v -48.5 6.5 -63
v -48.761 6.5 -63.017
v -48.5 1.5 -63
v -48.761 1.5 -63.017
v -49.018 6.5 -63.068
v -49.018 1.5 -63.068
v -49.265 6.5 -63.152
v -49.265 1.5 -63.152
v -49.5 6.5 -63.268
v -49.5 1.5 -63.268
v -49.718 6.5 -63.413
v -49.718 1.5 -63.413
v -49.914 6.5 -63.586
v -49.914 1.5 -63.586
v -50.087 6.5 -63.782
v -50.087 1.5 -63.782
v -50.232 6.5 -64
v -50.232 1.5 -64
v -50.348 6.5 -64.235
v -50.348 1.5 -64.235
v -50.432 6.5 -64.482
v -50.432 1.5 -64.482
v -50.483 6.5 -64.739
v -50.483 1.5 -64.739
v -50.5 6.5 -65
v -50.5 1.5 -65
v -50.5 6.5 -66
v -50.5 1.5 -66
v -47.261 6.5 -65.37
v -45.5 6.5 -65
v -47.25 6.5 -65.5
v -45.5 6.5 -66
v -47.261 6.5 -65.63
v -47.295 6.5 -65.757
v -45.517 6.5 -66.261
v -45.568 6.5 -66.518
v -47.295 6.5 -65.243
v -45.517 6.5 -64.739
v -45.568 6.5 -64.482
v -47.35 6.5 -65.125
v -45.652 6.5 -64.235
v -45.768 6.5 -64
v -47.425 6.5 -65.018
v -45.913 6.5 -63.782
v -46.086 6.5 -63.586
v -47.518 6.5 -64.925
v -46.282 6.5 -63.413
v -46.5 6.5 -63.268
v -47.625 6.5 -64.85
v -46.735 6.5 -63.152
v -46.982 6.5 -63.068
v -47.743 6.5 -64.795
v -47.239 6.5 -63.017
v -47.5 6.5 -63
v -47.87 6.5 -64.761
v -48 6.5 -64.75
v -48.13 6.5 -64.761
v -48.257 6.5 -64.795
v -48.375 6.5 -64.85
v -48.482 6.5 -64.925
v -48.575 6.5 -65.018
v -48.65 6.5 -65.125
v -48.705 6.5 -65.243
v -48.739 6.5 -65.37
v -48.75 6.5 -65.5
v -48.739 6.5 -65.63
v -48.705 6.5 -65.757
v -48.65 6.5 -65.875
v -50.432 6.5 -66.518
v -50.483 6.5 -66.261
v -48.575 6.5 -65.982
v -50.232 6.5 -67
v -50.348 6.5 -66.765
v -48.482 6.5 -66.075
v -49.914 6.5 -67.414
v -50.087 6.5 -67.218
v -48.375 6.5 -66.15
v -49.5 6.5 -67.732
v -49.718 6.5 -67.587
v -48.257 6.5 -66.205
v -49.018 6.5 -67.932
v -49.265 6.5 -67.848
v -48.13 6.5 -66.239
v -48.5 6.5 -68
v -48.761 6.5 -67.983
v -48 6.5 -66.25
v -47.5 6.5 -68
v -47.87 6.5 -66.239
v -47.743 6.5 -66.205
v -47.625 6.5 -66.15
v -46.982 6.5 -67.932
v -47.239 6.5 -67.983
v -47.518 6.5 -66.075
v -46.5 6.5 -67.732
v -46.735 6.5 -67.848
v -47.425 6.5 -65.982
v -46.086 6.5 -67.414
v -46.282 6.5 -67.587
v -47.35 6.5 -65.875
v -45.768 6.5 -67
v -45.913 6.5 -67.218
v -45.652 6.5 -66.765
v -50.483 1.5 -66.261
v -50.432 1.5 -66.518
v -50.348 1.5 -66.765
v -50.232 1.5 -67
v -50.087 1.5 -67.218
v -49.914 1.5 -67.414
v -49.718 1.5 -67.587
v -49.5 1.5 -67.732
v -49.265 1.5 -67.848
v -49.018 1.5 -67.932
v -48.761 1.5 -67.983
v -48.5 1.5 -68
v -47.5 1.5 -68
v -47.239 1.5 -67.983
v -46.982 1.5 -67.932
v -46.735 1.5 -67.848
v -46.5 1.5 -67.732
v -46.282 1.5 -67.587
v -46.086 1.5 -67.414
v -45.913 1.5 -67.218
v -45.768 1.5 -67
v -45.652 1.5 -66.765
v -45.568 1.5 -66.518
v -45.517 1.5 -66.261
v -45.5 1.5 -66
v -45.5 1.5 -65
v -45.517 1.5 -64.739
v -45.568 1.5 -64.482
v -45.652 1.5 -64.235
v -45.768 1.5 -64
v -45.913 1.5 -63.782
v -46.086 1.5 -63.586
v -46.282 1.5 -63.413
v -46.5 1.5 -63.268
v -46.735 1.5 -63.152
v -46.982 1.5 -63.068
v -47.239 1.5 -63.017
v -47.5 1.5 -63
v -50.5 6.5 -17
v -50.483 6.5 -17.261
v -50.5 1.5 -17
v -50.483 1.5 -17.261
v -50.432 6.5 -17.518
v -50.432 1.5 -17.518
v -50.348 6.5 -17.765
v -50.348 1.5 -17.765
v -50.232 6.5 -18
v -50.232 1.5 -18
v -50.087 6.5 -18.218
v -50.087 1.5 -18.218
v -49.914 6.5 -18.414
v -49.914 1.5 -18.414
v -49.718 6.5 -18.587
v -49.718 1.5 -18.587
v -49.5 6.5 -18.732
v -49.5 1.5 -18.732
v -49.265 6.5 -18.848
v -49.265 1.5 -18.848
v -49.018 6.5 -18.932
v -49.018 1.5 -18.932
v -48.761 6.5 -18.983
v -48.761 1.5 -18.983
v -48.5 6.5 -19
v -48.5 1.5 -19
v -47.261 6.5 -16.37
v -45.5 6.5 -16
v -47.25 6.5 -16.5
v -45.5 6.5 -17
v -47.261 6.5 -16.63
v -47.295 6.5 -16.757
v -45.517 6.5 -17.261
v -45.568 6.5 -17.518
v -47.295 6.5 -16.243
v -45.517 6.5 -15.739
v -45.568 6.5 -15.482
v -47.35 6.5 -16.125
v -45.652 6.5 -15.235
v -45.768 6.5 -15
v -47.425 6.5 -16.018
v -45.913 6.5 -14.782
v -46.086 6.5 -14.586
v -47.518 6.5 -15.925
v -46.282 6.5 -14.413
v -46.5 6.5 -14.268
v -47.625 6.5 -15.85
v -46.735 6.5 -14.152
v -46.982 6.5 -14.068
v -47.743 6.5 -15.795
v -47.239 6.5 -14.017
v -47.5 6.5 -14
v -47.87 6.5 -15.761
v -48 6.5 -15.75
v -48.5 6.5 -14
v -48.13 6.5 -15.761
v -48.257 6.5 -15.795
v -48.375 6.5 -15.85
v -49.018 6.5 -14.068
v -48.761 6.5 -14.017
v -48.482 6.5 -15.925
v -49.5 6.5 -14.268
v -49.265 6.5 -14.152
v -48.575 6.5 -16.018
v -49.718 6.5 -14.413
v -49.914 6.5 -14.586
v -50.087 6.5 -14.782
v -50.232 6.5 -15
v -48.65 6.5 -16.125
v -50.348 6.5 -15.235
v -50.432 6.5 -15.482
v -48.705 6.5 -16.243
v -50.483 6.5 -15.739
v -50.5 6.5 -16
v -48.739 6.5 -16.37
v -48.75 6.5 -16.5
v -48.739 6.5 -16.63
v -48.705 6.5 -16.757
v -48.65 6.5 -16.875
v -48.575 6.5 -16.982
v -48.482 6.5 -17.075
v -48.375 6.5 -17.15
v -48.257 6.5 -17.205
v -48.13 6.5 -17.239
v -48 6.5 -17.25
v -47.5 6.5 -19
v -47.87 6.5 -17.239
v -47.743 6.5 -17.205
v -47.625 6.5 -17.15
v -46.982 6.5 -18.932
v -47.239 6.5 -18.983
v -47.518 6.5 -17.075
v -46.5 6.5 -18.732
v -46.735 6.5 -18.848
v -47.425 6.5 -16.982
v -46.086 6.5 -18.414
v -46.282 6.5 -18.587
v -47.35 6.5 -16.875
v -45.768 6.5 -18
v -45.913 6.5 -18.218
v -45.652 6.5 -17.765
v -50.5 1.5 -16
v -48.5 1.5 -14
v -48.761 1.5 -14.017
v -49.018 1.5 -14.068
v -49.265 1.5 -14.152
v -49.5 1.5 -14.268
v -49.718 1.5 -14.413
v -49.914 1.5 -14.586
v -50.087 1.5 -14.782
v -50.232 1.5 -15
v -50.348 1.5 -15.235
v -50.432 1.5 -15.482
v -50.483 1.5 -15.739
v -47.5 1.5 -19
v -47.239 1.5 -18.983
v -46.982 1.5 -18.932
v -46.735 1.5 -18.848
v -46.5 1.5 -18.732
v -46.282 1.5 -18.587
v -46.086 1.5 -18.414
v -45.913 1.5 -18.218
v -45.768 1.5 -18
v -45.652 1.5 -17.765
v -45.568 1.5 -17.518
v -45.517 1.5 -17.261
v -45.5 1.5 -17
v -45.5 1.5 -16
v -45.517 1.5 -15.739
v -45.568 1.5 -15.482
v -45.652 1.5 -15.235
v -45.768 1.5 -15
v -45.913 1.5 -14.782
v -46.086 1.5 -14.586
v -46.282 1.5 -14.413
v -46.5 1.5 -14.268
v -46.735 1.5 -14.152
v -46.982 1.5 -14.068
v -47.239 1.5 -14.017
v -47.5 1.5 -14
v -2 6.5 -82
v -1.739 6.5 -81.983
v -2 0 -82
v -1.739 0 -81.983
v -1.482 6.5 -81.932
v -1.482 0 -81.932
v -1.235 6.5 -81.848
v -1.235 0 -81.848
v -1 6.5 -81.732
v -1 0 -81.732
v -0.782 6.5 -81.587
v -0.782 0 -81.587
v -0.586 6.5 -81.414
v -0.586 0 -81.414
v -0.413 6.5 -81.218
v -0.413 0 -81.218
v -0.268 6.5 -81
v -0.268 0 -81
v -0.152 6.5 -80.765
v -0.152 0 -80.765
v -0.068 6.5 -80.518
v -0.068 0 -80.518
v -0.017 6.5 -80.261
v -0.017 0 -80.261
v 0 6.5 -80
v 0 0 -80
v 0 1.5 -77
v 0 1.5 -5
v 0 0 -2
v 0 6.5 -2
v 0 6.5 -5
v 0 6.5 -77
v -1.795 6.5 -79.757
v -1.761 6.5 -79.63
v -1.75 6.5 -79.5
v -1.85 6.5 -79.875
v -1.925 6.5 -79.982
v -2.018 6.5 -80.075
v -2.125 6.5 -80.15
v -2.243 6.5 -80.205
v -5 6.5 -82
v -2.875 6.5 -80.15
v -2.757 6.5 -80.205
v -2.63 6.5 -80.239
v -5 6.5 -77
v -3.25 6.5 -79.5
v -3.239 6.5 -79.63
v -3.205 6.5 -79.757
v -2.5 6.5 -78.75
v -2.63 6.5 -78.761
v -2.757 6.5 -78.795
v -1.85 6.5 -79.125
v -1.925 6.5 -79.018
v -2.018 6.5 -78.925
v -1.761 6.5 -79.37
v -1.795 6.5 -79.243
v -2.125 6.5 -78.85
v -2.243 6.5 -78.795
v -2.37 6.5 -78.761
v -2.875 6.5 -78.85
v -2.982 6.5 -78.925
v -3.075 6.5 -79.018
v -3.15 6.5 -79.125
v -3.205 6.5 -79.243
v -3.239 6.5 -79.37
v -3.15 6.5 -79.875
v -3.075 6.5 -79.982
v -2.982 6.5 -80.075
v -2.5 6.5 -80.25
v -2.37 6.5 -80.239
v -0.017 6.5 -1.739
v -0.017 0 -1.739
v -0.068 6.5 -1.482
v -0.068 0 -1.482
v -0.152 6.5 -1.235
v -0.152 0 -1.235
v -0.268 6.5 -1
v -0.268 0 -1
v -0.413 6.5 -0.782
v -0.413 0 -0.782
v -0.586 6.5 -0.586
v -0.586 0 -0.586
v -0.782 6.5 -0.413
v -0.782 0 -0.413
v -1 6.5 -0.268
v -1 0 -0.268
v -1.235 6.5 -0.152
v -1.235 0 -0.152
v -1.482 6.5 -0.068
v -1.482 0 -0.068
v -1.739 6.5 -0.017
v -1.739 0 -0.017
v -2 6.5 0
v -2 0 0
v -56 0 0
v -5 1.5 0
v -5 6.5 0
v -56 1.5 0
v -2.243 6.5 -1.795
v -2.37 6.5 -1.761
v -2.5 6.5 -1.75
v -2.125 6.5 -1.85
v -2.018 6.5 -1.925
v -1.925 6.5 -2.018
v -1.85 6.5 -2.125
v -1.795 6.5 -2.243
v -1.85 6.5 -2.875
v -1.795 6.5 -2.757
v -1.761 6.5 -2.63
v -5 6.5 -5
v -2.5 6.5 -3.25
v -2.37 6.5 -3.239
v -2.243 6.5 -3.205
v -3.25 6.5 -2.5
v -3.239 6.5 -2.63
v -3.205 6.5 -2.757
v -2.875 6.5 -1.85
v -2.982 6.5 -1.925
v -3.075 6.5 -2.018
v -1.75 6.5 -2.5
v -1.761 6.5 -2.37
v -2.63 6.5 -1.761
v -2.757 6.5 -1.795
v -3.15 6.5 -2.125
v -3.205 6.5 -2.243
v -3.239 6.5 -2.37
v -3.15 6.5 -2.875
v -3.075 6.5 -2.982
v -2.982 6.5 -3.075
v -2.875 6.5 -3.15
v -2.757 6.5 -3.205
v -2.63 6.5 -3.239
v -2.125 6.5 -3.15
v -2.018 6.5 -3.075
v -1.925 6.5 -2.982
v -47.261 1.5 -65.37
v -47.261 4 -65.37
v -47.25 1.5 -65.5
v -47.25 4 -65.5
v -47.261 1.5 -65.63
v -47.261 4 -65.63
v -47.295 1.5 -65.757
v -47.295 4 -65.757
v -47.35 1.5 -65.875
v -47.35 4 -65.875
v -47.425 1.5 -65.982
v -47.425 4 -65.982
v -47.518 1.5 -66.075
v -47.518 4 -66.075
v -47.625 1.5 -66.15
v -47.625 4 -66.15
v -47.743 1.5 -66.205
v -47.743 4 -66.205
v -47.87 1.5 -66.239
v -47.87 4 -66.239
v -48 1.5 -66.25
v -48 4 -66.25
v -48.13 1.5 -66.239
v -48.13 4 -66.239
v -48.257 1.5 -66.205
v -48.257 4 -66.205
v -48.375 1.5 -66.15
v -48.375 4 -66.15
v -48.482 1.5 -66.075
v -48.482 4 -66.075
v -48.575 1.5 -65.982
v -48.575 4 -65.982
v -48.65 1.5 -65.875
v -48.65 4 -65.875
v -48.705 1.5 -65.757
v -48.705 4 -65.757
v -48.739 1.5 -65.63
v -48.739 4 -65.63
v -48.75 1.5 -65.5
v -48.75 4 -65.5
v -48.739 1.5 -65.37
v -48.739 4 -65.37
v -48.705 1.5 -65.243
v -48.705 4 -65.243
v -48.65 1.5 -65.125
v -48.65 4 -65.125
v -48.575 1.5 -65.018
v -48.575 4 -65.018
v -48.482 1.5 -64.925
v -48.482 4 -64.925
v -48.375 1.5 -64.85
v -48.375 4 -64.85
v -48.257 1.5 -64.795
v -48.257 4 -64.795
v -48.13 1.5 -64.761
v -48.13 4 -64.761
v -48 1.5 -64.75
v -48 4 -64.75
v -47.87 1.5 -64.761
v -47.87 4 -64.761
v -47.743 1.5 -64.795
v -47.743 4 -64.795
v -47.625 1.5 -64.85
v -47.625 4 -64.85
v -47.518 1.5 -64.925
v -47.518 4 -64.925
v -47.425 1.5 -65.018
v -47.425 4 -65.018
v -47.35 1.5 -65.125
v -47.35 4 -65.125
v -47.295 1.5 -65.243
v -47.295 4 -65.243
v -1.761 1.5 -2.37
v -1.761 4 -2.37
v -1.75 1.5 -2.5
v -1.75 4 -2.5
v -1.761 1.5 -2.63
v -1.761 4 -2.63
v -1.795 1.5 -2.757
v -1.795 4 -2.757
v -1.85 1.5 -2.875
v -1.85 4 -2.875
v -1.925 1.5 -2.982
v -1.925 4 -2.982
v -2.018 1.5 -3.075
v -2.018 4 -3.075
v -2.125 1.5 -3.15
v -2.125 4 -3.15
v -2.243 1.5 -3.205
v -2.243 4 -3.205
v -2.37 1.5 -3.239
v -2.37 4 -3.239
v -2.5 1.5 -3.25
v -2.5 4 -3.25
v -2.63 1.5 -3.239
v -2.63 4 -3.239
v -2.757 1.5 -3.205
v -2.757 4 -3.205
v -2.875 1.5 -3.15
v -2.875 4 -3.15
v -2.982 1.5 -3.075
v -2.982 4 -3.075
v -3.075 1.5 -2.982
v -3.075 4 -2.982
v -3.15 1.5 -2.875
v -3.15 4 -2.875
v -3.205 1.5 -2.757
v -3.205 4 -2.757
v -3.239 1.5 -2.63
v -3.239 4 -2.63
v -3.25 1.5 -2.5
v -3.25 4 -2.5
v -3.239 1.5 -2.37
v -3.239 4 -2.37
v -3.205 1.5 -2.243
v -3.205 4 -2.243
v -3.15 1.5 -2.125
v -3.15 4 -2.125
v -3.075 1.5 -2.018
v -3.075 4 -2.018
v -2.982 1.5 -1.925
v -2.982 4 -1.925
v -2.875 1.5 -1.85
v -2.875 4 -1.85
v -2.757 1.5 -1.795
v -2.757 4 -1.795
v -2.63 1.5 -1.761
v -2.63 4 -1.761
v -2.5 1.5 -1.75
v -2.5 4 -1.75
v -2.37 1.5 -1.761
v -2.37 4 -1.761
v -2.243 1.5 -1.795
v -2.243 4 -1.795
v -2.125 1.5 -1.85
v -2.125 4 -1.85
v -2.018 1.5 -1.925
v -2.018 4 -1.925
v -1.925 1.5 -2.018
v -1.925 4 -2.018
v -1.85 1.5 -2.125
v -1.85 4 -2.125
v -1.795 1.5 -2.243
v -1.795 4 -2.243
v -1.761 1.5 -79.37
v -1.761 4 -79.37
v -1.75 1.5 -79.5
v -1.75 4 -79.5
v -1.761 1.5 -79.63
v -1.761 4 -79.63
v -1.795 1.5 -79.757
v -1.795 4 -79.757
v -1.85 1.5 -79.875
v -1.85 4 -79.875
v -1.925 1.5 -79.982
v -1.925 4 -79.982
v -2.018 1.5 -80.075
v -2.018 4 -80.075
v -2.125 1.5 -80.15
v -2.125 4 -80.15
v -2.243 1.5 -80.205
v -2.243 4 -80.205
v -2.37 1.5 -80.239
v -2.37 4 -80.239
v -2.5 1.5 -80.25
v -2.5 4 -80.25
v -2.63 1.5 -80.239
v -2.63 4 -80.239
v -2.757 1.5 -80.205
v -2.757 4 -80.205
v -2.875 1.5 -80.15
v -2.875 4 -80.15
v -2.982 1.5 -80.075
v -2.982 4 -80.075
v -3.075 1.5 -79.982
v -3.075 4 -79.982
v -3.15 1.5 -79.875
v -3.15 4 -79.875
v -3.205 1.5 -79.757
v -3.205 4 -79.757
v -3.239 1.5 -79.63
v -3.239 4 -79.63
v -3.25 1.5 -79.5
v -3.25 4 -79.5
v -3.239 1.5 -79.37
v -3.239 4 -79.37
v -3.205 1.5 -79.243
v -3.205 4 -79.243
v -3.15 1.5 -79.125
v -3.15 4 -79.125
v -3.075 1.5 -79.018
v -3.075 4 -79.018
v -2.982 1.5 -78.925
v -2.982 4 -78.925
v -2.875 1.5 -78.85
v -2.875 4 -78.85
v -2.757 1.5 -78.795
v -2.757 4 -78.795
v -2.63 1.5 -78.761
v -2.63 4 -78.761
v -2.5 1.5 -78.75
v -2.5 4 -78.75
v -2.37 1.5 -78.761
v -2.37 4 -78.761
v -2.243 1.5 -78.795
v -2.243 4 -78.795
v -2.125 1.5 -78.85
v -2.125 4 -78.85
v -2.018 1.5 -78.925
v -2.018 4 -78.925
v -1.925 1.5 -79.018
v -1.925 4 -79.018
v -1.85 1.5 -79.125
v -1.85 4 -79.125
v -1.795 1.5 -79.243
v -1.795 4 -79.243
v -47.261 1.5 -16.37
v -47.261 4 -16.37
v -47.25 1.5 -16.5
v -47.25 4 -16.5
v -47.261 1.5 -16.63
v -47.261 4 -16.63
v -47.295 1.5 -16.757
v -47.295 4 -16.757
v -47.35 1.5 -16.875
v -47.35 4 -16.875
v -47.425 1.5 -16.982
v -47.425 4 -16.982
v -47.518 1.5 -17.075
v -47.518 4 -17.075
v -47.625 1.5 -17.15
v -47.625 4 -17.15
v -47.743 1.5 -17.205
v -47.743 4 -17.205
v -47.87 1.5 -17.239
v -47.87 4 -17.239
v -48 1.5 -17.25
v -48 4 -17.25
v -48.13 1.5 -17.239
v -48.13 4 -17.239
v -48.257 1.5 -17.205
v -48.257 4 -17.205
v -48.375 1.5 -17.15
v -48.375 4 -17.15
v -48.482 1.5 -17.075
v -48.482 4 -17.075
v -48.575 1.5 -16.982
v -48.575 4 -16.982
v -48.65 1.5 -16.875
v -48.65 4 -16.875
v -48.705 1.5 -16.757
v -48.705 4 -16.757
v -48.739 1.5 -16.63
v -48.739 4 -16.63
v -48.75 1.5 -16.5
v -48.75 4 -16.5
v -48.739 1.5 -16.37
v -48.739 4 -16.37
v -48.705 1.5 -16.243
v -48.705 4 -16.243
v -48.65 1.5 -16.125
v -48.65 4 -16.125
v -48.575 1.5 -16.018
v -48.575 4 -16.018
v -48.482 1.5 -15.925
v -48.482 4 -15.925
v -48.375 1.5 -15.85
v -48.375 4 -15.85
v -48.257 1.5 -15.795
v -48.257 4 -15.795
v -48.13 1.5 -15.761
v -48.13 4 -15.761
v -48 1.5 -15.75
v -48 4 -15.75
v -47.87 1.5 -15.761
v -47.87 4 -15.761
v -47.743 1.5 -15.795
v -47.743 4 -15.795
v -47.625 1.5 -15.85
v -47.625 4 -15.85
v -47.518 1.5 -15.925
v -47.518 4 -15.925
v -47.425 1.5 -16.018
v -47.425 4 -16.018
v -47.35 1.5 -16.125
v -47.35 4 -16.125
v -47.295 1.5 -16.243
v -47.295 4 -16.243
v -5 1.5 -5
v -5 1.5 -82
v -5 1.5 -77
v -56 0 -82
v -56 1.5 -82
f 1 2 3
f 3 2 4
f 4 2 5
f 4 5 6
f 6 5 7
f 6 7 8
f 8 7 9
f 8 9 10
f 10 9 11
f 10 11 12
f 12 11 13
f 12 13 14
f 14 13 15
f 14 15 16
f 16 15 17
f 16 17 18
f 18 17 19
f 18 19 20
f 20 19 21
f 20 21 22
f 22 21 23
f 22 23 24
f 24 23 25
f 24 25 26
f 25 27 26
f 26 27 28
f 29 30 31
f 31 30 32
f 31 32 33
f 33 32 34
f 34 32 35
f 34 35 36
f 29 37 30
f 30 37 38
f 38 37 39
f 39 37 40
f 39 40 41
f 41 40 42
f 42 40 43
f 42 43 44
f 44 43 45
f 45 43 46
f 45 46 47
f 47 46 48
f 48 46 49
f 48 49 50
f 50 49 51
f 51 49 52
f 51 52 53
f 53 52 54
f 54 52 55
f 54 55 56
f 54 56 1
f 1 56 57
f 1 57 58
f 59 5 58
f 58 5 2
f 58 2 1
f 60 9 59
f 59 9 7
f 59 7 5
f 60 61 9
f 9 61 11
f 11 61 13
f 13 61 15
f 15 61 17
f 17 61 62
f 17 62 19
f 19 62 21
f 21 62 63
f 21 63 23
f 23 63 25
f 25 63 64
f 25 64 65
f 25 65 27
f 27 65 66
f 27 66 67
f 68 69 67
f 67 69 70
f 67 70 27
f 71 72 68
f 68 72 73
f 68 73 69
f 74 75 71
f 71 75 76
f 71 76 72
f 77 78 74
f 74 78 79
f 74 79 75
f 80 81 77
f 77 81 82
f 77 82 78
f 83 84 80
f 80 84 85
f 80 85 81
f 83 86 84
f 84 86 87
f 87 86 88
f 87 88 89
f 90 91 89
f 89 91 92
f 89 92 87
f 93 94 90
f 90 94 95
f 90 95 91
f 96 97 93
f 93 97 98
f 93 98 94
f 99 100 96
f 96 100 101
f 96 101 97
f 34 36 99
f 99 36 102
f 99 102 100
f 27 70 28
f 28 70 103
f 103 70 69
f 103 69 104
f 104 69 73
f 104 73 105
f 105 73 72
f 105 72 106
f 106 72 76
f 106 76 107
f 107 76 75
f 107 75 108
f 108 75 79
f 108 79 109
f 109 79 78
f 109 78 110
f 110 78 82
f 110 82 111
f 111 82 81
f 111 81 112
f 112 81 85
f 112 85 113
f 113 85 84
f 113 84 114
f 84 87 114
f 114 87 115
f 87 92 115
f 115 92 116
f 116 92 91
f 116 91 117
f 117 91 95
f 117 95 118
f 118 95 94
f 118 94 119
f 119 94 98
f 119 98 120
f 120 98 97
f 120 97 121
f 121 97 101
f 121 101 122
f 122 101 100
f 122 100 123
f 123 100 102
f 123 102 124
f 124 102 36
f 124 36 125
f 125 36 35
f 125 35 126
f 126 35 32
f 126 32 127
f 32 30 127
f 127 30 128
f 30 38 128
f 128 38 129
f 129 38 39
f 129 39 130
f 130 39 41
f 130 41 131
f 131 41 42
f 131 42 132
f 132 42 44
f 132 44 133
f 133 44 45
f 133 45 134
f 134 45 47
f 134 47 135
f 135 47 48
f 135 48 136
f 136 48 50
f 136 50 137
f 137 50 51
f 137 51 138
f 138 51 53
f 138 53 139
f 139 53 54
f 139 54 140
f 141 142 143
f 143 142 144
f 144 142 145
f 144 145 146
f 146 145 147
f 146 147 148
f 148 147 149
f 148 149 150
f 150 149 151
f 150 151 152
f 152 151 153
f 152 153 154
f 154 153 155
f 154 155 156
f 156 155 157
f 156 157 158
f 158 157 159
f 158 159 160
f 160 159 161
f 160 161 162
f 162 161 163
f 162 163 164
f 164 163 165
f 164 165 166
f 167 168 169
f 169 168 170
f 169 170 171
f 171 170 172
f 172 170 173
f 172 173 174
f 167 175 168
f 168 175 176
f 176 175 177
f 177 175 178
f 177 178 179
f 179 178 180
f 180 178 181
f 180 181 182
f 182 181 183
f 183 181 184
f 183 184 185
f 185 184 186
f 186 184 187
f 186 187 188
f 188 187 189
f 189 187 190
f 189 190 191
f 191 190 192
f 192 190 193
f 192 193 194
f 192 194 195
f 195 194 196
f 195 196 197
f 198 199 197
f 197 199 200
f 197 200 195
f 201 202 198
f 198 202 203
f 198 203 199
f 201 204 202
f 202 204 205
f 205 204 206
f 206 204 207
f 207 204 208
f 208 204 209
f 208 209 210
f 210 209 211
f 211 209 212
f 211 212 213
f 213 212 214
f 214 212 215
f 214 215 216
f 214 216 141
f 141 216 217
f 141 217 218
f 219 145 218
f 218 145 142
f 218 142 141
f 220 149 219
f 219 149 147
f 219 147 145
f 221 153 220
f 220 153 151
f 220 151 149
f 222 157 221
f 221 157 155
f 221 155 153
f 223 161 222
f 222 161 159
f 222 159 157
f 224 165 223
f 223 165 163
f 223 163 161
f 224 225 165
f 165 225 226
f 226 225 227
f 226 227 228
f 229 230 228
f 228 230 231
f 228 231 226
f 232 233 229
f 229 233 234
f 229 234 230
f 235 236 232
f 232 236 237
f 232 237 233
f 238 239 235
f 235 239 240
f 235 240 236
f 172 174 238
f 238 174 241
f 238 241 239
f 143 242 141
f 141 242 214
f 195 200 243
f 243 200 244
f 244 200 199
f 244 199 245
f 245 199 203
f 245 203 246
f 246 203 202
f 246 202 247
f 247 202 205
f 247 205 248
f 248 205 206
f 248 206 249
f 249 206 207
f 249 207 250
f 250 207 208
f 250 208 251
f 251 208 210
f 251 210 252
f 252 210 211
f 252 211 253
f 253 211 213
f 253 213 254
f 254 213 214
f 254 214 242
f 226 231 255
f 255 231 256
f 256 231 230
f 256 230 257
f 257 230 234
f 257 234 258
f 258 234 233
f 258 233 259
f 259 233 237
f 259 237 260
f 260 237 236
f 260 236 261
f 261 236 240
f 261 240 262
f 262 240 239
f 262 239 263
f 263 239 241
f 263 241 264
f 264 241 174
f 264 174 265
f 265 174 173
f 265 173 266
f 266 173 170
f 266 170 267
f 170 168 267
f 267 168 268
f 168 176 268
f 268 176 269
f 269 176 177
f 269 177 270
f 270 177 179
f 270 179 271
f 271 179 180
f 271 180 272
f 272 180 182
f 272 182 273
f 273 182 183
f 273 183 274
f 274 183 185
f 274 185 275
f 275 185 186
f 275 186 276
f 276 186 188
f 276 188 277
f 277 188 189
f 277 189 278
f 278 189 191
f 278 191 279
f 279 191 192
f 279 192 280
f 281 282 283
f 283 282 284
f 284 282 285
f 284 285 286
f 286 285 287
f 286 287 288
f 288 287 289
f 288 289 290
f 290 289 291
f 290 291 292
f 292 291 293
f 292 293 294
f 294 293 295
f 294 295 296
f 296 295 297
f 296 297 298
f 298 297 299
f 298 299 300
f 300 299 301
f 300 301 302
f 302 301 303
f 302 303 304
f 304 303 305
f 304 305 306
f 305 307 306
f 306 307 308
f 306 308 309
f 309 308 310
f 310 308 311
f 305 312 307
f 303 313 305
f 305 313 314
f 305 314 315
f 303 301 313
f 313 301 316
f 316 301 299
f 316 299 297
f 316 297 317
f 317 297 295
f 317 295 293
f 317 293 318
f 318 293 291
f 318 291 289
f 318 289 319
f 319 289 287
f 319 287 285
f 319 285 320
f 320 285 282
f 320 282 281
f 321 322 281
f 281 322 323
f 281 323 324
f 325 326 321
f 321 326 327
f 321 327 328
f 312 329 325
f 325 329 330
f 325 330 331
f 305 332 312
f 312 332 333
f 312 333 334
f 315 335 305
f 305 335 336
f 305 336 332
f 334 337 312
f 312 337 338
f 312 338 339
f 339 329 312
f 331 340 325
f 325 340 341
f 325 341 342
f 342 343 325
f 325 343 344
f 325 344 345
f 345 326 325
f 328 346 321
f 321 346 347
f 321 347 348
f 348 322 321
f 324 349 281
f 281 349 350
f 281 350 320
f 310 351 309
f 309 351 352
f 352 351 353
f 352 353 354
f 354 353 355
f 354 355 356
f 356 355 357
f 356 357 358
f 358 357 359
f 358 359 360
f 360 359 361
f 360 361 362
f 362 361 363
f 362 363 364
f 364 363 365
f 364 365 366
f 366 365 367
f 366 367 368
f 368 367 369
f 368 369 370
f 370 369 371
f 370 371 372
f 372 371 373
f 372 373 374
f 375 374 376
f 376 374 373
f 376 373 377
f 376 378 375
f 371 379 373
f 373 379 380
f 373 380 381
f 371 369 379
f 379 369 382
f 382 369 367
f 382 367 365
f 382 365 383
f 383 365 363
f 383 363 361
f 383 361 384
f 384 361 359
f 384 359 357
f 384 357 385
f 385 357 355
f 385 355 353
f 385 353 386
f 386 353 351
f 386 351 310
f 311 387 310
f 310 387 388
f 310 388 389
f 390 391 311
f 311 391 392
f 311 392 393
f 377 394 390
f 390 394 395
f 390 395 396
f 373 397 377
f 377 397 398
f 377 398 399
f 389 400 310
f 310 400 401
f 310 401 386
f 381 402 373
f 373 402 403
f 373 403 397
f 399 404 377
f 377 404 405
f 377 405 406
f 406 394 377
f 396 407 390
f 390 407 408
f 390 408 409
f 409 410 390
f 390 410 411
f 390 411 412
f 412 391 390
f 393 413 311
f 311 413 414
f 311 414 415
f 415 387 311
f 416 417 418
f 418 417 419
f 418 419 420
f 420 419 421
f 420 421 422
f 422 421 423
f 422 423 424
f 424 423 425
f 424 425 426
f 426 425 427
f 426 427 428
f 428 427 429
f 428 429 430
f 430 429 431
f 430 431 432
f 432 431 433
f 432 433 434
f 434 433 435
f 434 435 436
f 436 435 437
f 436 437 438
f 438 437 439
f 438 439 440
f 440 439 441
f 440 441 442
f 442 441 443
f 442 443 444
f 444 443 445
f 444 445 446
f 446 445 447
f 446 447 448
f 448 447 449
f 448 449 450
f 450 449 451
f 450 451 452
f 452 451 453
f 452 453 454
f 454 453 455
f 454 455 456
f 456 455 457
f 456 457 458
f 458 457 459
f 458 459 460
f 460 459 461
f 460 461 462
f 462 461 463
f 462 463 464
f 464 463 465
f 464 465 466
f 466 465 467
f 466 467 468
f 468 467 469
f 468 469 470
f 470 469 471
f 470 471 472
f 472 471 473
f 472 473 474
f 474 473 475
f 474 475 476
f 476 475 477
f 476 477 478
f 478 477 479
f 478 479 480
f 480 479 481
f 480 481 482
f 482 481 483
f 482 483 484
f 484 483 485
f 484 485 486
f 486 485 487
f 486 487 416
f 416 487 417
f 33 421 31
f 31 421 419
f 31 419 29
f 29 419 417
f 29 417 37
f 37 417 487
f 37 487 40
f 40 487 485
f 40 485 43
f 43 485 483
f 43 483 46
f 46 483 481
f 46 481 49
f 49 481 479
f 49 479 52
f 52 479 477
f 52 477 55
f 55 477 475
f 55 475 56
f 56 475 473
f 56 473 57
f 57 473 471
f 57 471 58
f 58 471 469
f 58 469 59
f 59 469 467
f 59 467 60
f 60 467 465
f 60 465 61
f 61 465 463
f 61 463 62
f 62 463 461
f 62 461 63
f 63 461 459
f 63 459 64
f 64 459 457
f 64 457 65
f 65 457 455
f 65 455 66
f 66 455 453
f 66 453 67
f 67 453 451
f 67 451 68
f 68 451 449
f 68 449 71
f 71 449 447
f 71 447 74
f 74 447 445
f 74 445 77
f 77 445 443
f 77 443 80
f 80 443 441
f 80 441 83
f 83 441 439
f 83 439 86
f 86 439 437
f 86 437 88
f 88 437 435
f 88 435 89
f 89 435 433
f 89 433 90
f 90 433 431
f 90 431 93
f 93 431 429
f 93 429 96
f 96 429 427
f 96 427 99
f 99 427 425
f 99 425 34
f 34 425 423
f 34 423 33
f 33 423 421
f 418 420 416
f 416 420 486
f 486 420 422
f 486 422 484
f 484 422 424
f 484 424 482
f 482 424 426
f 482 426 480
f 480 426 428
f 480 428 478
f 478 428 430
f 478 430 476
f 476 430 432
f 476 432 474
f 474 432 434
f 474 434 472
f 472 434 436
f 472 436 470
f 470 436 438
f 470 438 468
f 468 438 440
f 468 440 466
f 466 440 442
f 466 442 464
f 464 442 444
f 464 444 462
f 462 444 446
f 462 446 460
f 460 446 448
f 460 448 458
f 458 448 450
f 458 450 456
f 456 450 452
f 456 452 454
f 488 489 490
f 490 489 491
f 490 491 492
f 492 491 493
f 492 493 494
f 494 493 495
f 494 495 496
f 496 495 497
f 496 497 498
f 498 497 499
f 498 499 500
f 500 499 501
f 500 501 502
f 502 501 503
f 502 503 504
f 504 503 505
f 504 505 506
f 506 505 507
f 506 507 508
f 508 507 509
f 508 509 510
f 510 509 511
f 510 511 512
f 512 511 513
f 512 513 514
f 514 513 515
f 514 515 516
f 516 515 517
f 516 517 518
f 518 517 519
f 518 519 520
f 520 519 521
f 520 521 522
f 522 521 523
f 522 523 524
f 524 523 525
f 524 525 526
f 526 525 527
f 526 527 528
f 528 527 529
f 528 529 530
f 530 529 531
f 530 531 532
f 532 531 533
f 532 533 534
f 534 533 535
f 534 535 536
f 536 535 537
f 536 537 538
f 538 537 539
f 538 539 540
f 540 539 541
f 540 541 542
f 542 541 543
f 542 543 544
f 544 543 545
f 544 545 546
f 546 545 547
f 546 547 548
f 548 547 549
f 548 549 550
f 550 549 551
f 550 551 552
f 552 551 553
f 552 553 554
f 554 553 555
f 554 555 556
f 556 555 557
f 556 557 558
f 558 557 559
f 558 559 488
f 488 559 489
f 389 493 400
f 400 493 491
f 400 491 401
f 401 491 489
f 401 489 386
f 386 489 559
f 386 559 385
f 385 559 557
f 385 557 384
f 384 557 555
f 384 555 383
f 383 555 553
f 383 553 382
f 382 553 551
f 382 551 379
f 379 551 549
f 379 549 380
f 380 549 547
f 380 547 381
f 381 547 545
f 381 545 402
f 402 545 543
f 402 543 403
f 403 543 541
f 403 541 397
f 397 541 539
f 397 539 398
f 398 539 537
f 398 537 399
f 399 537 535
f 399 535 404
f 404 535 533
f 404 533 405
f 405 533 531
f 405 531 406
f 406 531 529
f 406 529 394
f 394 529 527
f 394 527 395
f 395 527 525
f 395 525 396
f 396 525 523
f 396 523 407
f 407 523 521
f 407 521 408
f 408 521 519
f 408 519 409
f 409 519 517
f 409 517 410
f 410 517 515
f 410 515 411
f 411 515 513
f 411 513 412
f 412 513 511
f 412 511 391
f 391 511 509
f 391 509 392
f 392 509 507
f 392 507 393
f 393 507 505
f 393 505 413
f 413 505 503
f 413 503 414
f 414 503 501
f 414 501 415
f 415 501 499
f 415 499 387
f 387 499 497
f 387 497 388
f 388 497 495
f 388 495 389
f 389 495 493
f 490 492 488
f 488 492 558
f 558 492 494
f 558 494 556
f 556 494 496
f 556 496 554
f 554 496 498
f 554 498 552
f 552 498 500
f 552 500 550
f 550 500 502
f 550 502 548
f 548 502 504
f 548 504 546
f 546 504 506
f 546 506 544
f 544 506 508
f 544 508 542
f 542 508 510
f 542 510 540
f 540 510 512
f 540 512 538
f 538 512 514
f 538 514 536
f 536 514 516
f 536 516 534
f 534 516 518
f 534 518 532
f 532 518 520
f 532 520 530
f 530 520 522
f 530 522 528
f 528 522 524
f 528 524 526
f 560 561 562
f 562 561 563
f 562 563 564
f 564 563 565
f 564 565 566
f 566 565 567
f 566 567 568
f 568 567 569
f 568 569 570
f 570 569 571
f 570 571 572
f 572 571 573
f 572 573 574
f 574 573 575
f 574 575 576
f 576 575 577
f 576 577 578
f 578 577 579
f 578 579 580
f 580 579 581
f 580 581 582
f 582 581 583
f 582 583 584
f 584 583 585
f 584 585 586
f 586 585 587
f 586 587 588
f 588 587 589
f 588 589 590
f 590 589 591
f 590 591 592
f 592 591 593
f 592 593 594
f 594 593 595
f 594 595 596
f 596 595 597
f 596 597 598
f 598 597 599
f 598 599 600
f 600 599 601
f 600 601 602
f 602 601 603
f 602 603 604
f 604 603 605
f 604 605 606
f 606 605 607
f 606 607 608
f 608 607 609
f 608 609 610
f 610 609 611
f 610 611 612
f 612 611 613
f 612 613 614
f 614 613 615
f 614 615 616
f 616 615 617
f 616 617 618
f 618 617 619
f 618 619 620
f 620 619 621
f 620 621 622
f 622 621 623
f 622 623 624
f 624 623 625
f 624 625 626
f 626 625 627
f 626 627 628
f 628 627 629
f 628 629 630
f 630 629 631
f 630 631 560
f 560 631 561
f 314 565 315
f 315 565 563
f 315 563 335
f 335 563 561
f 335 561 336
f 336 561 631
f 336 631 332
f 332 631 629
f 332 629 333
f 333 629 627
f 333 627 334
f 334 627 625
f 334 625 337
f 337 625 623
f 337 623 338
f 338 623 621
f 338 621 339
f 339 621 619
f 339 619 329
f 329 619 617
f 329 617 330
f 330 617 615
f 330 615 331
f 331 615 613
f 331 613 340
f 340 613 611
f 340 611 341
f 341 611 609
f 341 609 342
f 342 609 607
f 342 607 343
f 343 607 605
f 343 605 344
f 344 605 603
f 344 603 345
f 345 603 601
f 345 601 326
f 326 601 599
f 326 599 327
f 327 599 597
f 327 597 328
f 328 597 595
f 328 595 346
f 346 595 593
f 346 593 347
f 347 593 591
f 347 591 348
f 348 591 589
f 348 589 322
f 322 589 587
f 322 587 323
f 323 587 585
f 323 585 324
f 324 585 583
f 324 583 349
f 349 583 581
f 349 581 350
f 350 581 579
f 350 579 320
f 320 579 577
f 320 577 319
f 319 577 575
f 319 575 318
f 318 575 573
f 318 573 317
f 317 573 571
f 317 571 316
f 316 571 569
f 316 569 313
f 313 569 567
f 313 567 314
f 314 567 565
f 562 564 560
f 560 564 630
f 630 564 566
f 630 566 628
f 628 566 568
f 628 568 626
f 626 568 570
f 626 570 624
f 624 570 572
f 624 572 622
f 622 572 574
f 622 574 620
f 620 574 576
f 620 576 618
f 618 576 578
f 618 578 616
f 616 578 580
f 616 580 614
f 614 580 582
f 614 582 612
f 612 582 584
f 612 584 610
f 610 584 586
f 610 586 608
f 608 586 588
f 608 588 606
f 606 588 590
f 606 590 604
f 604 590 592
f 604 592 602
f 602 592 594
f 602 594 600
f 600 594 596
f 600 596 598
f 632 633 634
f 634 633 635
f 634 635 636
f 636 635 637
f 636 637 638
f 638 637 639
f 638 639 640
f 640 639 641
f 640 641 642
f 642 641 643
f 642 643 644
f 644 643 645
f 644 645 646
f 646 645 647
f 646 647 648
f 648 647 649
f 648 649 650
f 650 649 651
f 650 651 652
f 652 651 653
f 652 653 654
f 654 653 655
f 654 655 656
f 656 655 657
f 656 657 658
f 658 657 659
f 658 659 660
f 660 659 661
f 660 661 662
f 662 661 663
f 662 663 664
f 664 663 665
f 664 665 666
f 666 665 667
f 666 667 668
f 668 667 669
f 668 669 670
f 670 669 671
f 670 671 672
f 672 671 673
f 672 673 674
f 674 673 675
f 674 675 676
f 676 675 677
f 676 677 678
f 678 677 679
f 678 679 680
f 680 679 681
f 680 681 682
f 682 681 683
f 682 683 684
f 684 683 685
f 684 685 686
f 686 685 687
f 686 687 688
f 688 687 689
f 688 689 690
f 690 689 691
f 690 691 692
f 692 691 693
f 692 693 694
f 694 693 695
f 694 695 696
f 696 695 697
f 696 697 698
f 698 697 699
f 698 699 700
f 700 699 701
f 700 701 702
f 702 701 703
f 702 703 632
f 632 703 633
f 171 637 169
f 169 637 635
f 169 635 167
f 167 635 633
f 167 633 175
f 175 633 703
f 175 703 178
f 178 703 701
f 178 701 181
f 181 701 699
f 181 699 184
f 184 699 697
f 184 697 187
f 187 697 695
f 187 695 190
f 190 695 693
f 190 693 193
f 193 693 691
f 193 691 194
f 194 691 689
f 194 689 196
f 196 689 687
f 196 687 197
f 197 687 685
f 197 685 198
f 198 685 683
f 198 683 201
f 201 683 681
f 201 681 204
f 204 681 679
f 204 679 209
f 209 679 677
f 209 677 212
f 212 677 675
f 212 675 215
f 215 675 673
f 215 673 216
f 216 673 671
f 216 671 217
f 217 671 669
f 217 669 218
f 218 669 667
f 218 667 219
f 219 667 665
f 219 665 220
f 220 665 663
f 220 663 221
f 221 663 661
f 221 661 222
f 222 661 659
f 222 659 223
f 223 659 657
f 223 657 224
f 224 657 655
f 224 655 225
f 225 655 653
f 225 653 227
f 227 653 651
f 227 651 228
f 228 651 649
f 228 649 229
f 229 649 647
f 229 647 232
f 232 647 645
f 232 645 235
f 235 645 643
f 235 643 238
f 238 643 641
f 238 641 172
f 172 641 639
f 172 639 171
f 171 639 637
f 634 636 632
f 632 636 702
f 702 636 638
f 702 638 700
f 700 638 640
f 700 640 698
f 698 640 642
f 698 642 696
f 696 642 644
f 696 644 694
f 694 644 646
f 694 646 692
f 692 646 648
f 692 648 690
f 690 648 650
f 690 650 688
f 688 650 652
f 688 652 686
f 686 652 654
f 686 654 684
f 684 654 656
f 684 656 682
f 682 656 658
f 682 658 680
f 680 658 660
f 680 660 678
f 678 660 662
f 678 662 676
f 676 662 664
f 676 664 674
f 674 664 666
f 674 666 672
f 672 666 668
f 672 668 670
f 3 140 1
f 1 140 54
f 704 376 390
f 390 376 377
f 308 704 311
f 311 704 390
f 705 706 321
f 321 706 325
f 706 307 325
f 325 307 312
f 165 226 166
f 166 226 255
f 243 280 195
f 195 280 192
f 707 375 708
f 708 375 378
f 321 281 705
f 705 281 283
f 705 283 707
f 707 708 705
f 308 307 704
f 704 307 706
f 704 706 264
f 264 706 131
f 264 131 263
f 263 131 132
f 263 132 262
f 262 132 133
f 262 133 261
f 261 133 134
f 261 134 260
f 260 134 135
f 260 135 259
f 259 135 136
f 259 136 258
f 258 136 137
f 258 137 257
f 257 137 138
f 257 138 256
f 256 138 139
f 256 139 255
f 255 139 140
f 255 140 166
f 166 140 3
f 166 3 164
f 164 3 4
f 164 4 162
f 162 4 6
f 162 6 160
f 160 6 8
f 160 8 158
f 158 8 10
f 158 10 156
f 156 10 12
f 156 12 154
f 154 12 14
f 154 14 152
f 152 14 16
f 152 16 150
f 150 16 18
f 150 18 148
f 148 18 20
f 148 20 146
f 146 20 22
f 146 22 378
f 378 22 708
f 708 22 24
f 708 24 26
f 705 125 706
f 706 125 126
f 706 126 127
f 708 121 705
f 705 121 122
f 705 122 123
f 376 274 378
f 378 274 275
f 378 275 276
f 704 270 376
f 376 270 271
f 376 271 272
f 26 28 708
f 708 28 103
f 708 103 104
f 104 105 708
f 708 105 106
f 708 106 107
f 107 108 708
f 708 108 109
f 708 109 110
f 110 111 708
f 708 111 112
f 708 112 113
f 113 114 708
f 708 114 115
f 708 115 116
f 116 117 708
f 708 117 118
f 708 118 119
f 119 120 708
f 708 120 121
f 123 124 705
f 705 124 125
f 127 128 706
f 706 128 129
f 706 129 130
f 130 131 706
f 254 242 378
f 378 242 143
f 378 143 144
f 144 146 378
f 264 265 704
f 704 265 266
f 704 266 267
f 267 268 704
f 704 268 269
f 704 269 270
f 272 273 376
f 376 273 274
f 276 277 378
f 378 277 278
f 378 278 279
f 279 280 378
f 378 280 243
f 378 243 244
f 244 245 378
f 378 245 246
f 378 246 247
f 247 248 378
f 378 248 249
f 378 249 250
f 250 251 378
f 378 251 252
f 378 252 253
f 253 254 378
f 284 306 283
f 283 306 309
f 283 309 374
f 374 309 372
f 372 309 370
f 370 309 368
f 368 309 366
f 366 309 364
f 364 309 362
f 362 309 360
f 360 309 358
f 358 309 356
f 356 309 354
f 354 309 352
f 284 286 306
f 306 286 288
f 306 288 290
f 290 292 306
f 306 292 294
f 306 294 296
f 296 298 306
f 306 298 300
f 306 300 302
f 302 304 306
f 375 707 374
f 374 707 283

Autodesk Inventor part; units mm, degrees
ref_plane "YZ Plane" through (0, 0, 0) normal (1, 0, 0) x (0, 1, 0)
ref_plane "XZ Plane" through (0, 0, 0) normal (0, 1, 0) x (-1, 0, 0)
ref_plane "XY Plane" through (0, 0, 0) normal (0, 0, 1) x (1, 0, 0)
sketch "Эскиз1" plane through (0, 0, 0) normal (0, 1, 0) x (-1, 0, 0)
  line L0 (0, 0) -> (56, 0)
  line L1 (56, 0) -> (56, -82)
  line L2 (56, -82) -> (0, -82)
  line L3 (0, -82) -> (0, 0)
  dimension "d0" = 56
  dimension "d1" = 82
extrude "Выдавливание1" add sketch "Эскиз1" along normal blind 1.5
sketch "Эскиз2" plane through (0, 1.5, 0) normal (0, 1, 0) x (1, 0, 0)
  line L0 (-56, 0) -> (0, 0) projected
  line L1 (0, 0) -> (-5, 0)
  line L2 (-5, 0) -> (-5, 5)
  line L3 (-5, 5) -> (0, 5)
  line L4 (0, 5) -> (0, 0)
  line L5 (0, 0) -> (0, 82) projected
  line L6 (0, 82) -> (-5, 82)
  line L7 (-5, 82) -> (-5, 77)
  line L8 (-5, 77) -> (0, 77)
  line L9 (0, 77) -> (0, 82)
  line L10 (-50.5, 14) -> (-45.5, 14)
  line L11 (-45.5, 14) -> (-45.5, 19)
  line L12 (-45.5, 19) -> (-50.5, 19)
  line L13 (-50.5, 19) -> (-50.5, 14)
  line L14 (-50.5, 63) -> (-45.5, 63)
  line L15 (-45.5, 63) -> (-45.5, 68)
  line L16 (-45.5, 68) -> (-50.5, 68)
  line L17 (-50.5, 68) -> (-50.5, 63)
  line L18 (-56, 82) -> (-56, 0) projected
  line L19 (0, 82) -> (-56, 82) projected
  dimension "d4" = 5
  dimension "d5" = 5
  dimension "d6" = 5
  dimension "d7" = 5
  dimension "d8" = 5
  dimension "d9" = 5
  dimension "d10" = 5
  dimension "d11" = 5
  dimension "d12" = 14
  dimension "d13" = 5.5
  dimension "d14" = 14
extrude "Выдавливание2" add sketch "Эскиз2" along normal blind 5 contours L2 L3 L4 L0 | L6 L5 L8 L7 | L13 L12 L11 L10 | L17 L16 L15 L14
sketch "Эскиз3" plane through (0, 6.5, 0) normal (0, 1, 0) x (1, 0, 0)
  circle A0 centre (-2.5, 2.5) radius 0.75
  line L0 (-5, 0) -> (0, 0) projected
  line L1 (0, 0) -> (0, 5) projected
  circle A1 centre (-2.5, 79.5) radius 0.75
  line L2 (0, 77) -> (0, 82) projected
  line L3 (0, 82) -> (-5, 82) projected
  circle A2 centre (-48, 16.5) radius 0.75
  line L4 (-56, 0) -> (-5, 0) projected
  circle A3 centre (-48, 65.5) radius 0.75
  line L5 (-5, 82) -> (-56, 82) projected
  line L6 (-45.5, 14) -> (-45.5, 19) projected
  line L7 (-45.5, 63) -> (-45.5, 68) projected
  dimension "d17" = 1.5
  dimension "d18" = 2.5
  dimension "d19" = 2.5
  dimension "d20" = 1.5
  dimension "d21" = 2.5
  dimension "d22" = 2.5
  dimension "d23" = 1.5
  dimension "d24" = 16.5
  dimension "d25" = 1.5
  dimension "d26" = 16.5
  dimension "d27" = 2.5
  dimension "d28" = 2.5
extrude "Выдавливание3" cut sketch "Эскиз3" against normal blind 5
fillet "Сопряжение1" radius 2 10 edges at (0, 3.25, 0) (0, 3.25, -82) (-45.5, 4, -14) (-45.5, 4, -19) (-50.5, 4, -14) (-50.5, 4, -19) (-45.5, 4, -63) (-45.5, 4, -68) (-50.5, 4, -68) (-50.5, 4, -63)
properties part number "VIM1_Holder"
